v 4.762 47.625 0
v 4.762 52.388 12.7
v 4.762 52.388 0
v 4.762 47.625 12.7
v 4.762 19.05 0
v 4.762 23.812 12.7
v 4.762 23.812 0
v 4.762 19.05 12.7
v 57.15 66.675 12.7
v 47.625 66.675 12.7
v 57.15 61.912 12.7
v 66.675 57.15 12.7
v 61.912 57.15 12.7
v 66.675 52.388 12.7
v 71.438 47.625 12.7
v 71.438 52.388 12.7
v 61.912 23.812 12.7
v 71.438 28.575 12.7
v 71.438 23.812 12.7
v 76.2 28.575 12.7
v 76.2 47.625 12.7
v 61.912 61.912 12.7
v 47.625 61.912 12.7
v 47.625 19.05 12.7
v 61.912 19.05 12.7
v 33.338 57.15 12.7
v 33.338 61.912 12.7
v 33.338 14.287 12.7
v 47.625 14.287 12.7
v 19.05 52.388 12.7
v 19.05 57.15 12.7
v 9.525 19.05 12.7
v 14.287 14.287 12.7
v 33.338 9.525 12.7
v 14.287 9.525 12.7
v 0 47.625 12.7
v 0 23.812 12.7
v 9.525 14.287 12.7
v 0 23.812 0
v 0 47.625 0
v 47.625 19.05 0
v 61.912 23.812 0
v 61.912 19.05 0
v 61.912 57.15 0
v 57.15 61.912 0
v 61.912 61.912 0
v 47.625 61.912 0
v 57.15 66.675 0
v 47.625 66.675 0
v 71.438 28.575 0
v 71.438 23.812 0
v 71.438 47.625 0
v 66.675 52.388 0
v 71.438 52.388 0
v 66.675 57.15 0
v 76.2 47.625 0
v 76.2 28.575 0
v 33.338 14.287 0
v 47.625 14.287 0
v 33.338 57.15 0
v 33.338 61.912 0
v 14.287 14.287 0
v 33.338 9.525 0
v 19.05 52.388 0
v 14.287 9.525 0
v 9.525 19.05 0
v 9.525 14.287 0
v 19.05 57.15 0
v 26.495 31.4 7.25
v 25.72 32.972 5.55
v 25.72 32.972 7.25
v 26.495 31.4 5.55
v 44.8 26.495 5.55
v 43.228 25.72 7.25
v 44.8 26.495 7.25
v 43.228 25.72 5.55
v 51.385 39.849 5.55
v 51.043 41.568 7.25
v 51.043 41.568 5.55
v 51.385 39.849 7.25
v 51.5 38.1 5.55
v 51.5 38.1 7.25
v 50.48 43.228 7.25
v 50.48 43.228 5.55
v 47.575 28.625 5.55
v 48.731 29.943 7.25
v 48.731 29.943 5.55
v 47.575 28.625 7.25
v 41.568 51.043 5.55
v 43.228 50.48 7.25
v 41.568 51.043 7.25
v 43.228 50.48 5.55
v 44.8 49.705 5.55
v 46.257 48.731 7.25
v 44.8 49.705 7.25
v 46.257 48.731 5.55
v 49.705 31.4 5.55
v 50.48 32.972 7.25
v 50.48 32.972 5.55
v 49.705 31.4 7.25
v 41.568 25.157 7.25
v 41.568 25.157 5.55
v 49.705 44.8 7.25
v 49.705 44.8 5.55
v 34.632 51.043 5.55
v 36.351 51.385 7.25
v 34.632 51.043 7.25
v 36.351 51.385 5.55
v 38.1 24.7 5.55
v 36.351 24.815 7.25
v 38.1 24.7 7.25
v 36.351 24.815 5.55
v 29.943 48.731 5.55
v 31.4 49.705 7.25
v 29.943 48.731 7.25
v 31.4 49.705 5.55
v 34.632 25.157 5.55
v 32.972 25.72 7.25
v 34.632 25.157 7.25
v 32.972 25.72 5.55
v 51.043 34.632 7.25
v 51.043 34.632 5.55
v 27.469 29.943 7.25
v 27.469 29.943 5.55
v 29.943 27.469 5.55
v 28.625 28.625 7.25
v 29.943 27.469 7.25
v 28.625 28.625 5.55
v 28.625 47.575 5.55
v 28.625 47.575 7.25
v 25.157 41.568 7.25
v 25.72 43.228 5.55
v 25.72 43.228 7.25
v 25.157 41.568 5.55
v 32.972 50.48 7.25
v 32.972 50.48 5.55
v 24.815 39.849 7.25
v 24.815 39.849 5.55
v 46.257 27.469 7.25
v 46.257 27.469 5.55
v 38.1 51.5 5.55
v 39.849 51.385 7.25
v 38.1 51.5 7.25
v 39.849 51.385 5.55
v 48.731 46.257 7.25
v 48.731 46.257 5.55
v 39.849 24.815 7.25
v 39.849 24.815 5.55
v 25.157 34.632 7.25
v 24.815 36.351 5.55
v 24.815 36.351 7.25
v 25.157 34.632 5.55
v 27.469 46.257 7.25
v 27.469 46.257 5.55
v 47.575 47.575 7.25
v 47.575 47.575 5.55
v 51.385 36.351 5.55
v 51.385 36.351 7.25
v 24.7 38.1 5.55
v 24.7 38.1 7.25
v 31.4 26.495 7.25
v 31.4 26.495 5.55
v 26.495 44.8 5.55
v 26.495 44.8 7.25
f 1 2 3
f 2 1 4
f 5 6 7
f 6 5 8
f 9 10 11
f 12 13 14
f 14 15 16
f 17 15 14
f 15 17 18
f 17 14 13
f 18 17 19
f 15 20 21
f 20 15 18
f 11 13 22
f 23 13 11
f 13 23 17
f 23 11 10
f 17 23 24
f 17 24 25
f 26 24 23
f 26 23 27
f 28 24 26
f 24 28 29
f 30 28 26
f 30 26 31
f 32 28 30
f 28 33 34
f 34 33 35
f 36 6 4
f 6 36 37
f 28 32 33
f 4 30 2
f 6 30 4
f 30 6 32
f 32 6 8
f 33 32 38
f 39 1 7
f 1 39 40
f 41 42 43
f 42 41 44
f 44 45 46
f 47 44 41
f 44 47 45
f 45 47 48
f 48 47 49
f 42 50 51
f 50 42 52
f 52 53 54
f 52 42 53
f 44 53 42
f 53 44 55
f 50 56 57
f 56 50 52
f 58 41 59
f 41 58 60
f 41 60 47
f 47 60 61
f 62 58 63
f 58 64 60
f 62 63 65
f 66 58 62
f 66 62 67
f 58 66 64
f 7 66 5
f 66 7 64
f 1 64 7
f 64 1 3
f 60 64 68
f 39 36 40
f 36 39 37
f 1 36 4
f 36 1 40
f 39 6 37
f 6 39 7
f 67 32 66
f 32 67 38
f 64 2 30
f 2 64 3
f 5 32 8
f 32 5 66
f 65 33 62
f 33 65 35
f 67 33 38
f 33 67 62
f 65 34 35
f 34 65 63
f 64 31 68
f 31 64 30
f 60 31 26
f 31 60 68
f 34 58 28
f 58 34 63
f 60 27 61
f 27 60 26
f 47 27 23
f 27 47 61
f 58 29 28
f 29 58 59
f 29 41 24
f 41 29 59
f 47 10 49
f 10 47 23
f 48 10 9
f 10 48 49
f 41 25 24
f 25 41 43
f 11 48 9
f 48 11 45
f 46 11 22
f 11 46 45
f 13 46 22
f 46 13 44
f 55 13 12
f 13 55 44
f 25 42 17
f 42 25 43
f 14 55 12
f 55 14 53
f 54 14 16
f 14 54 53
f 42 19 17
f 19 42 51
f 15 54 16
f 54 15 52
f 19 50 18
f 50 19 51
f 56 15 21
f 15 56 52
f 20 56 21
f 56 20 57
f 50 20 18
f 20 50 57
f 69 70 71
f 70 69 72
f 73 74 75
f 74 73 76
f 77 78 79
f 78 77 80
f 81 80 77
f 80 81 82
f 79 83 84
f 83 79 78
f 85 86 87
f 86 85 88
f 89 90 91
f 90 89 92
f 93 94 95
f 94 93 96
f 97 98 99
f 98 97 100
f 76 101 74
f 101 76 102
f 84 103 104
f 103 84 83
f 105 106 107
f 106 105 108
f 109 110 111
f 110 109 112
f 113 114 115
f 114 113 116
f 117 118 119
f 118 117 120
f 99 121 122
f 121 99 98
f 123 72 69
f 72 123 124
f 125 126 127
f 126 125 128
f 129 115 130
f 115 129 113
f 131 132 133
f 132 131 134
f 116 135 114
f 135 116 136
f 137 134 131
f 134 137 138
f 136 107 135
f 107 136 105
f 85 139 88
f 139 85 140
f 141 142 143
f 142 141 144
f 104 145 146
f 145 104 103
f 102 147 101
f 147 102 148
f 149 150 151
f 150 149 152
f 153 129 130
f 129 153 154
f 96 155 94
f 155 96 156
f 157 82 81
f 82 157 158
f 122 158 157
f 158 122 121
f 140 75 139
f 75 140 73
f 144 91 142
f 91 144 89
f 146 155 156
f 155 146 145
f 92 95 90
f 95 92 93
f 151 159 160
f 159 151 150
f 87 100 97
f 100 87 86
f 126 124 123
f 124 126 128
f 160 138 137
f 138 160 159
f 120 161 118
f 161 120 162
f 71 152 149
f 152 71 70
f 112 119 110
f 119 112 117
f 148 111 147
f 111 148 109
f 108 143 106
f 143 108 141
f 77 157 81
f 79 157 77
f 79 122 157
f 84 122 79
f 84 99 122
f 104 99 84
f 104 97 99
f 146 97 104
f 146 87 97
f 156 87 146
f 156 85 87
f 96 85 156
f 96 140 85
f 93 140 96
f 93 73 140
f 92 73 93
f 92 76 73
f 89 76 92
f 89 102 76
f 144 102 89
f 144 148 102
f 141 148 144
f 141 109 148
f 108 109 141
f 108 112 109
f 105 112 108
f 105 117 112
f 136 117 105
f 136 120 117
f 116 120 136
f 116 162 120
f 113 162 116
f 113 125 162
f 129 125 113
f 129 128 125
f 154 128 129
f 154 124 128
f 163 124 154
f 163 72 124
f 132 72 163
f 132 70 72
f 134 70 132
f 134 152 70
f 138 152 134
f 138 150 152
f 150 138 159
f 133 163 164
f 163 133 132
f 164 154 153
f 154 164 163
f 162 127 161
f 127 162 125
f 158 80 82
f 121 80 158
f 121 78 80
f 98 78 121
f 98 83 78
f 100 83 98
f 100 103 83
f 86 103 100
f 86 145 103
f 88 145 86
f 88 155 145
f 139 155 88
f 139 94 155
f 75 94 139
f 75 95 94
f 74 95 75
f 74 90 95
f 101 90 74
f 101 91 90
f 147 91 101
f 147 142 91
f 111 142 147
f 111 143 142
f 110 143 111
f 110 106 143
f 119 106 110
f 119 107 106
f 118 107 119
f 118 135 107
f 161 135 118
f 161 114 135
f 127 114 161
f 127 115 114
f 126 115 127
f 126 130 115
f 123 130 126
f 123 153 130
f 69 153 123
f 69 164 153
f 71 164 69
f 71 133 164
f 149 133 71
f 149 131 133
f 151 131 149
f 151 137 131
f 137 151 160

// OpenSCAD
// copper_ingot — Minecraft Item Shape 3D Model
// Auto-generated from minecraft/textures/item/copper_ingot.png
//
// Open in OpenSCAD → F5 preview → F6 render → F7 export STL

// ============================================================
// PARAMETERS
// ============================================================

GRID_SIZE_IN    = 3.0;           // crafting table slot size
PIXELS          = 16;              // grid divisions (shape-fitted)
PIXEL_MM        = (GRID_SIZE_IN * 25.4) / PIXELS;  // mm per pixel

DEPTH_IN        = 0.5;          // extrusion depth in inches
DEPTH_MM        = DEPTH_IN * 25.4;

// NFC tag (NTAG215 25mm coin)
TAG_DIAMETER    = 26;           // mm — slightly oversized for easy drop-in
TAG_THICKNESS   = 1.2;         // mm
TAG_CLEARANCE   = 0.4;         // mm extra around tag

cavity_d = TAG_DIAMETER + TAG_CLEARANCE * 2;
cavity_h = TAG_THICKNESS + TAG_CLEARANCE;

echo(str("Tag cavity: ", cavity_d, "mm dia × ", cavity_h, "mm deep"));
echo(str("PAUSE AT: ", DEPTH_MM / 2 + cavity_h / 2, "mm to insert tag"));

module tag_cavity() {
    cx = (7.5 + 0.5) * PIXEL_MM;
    cy = (PIXELS - 1 - 7.5 + 0.5) * PIXEL_MM;
    translate([cx, cy, DEPTH_MM / 2 - cavity_h / 2])
        cylinder(d = cavity_d, h = cavity_h + 0.1, $fn = 48);
}

module tag_shelf() {
    cx = (7.5 + 0.5) * PIXEL_MM;
    cy = (PIXELS - 1 - 7.5 + 0.5) * PIXEL_MM;
    translate([cx, cy, DEPTH_MM / 2 - cavity_h / 2 - 1.0])
        cylinder(d = cavity_d + 4, h = 1.0, $fn = 48);
}

echo(str("Pixel size: ", PIXEL_MM, "mm"));
echo(str("Footprint: ", PIXELS * PIXEL_MM, "mm = ", GRID_SIZE_IN, " in"));
echo(str("Depth: ", DEPTH_MM, "mm = ", DEPTH_IN, " in"));

// ============================================================
// PIXEL MAP — 135 opaque pixels
// ============================================================

item_pixels = [
    [0.0,6.0], [0.0,7.0], [0.0,8.0], [0.0,9.0], [0.0,10.0], [1.0,5.0], [1.0,6.0], [1.0,7.0],
    [1.0,8.0], [1.0,9.0], [1.0,10.0], [1.0,11.0], [2.0,5.0], [2.0,6.0], [2.0,7.0], [2.0,8.0],
    [2.0,9.0], [2.0,10.0], [2.0,11.0], [2.0,12.0], [3.0,5.0], [3.0,6.0], [3.0,7.0], [3.0,8.0],
    [3.0,9.0], [3.0,10.0], [3.0,11.0], [3.0,12.0], [3.0,13.0], [4.0,4.0], [4.0,5.0], [4.0,6.0],
    [4.0,7.0], [4.0,8.0], [4.0,9.0], [4.0,10.0], [4.0,11.0], [4.0,12.0], [4.0,13.0], [5.0,4.0],
    [5.0,5.0], [5.0,6.0], [5.0,7.0], [5.0,8.0], [5.0,9.0], [5.0,10.0], [5.0,11.0], [5.0,12.0],
    [5.0,13.0], [6.0,4.0], [6.0,5.0], [6.0,6.0], [6.0,7.0], [6.0,8.0], [6.0,9.0], [6.0,10.0],
    [6.0,11.0], [6.0,12.0], [6.0,13.0], [7.0,3.0], [7.0,4.0], [7.0,5.0], [7.0,6.0], [7.0,7.0],
    [7.0,8.0], [7.0,9.0], [7.0,10.0], [7.0,11.0], [7.0,12.0], [8.0,3.0], [8.0,4.0], [8.0,5.0],
    [8.0,6.0], [8.0,7.0], [8.0,8.0], [8.0,9.0], [8.0,10.0], [8.0,11.0], [8.0,12.0], [9.0,3.0],
    [9.0,4.0], [9.0,5.0], [9.0,6.0], [9.0,7.0], [9.0,8.0], [9.0,9.0], [9.0,10.0], [9.0,11.0],
    [9.0,12.0], [10.0,2.0], [10.0,3.0], [10.0,4.0], [10.0,5.0], [10.0,6.0], [10.0,7.0], [10.0,8.0],
    [10.0,9.0], [10.0,10.0], [10.0,11.0], [11.0,2.0], [11.0,3.0], [11.0,4.0], [11.0,5.0], [11.0,6.0],
    [11.0,7.0], [11.0,8.0], [11.0,9.0], [11.0,10.0], [11.0,11.0], [12.0,3.0], [12.0,4.0], [12.0,5.0],
    [12.0,6.0], [12.0,7.0], [12.0,8.0], [12.0,9.0], [12.0,10.0], [12.0,11.0], [13.0,4.0], [13.0,5.0],
    [13.0,6.0], [13.0,7.0], [13.0,8.0], [13.0,9.0], [13.0,10.0], [14.0,5.0], [14.0,6.0], [14.0,7.0],
    [14.0,8.0], [14.0,9.0], [14.0,10.0], [15.0,6.0], [15.0,7.0], [15.0,8.0], [15.0,9.0]
];

// ============================================================
// MODULES
// ============================================================

module pixel_block(col, row) {
    translate([col * PIXEL_MM, (PIXELS - 1 - row) * PIXEL_MM, 0])
        cube([PIXEL_MM, PIXEL_MM, DEPTH_MM]);
}

module item_shape() {
    for (i = [0 : len(item_pixels) - 1])
        pixel_block(item_pixels[i][0], item_pixels[i][1]);
}

module item_final() {
    difference() {
        union() {
            item_shape();
            intersection() {
                item_shape();
                tag_shelf();
            }
        }
        tag_cavity();
    }
}

item_final();

// Cross-section view (uncomment to see tag cavity):
// difference() {
//     item_final();
//     translate([8 * PIXEL_MM + 50, 0, 0])
//         cube([100, 200, 100]);
// }
